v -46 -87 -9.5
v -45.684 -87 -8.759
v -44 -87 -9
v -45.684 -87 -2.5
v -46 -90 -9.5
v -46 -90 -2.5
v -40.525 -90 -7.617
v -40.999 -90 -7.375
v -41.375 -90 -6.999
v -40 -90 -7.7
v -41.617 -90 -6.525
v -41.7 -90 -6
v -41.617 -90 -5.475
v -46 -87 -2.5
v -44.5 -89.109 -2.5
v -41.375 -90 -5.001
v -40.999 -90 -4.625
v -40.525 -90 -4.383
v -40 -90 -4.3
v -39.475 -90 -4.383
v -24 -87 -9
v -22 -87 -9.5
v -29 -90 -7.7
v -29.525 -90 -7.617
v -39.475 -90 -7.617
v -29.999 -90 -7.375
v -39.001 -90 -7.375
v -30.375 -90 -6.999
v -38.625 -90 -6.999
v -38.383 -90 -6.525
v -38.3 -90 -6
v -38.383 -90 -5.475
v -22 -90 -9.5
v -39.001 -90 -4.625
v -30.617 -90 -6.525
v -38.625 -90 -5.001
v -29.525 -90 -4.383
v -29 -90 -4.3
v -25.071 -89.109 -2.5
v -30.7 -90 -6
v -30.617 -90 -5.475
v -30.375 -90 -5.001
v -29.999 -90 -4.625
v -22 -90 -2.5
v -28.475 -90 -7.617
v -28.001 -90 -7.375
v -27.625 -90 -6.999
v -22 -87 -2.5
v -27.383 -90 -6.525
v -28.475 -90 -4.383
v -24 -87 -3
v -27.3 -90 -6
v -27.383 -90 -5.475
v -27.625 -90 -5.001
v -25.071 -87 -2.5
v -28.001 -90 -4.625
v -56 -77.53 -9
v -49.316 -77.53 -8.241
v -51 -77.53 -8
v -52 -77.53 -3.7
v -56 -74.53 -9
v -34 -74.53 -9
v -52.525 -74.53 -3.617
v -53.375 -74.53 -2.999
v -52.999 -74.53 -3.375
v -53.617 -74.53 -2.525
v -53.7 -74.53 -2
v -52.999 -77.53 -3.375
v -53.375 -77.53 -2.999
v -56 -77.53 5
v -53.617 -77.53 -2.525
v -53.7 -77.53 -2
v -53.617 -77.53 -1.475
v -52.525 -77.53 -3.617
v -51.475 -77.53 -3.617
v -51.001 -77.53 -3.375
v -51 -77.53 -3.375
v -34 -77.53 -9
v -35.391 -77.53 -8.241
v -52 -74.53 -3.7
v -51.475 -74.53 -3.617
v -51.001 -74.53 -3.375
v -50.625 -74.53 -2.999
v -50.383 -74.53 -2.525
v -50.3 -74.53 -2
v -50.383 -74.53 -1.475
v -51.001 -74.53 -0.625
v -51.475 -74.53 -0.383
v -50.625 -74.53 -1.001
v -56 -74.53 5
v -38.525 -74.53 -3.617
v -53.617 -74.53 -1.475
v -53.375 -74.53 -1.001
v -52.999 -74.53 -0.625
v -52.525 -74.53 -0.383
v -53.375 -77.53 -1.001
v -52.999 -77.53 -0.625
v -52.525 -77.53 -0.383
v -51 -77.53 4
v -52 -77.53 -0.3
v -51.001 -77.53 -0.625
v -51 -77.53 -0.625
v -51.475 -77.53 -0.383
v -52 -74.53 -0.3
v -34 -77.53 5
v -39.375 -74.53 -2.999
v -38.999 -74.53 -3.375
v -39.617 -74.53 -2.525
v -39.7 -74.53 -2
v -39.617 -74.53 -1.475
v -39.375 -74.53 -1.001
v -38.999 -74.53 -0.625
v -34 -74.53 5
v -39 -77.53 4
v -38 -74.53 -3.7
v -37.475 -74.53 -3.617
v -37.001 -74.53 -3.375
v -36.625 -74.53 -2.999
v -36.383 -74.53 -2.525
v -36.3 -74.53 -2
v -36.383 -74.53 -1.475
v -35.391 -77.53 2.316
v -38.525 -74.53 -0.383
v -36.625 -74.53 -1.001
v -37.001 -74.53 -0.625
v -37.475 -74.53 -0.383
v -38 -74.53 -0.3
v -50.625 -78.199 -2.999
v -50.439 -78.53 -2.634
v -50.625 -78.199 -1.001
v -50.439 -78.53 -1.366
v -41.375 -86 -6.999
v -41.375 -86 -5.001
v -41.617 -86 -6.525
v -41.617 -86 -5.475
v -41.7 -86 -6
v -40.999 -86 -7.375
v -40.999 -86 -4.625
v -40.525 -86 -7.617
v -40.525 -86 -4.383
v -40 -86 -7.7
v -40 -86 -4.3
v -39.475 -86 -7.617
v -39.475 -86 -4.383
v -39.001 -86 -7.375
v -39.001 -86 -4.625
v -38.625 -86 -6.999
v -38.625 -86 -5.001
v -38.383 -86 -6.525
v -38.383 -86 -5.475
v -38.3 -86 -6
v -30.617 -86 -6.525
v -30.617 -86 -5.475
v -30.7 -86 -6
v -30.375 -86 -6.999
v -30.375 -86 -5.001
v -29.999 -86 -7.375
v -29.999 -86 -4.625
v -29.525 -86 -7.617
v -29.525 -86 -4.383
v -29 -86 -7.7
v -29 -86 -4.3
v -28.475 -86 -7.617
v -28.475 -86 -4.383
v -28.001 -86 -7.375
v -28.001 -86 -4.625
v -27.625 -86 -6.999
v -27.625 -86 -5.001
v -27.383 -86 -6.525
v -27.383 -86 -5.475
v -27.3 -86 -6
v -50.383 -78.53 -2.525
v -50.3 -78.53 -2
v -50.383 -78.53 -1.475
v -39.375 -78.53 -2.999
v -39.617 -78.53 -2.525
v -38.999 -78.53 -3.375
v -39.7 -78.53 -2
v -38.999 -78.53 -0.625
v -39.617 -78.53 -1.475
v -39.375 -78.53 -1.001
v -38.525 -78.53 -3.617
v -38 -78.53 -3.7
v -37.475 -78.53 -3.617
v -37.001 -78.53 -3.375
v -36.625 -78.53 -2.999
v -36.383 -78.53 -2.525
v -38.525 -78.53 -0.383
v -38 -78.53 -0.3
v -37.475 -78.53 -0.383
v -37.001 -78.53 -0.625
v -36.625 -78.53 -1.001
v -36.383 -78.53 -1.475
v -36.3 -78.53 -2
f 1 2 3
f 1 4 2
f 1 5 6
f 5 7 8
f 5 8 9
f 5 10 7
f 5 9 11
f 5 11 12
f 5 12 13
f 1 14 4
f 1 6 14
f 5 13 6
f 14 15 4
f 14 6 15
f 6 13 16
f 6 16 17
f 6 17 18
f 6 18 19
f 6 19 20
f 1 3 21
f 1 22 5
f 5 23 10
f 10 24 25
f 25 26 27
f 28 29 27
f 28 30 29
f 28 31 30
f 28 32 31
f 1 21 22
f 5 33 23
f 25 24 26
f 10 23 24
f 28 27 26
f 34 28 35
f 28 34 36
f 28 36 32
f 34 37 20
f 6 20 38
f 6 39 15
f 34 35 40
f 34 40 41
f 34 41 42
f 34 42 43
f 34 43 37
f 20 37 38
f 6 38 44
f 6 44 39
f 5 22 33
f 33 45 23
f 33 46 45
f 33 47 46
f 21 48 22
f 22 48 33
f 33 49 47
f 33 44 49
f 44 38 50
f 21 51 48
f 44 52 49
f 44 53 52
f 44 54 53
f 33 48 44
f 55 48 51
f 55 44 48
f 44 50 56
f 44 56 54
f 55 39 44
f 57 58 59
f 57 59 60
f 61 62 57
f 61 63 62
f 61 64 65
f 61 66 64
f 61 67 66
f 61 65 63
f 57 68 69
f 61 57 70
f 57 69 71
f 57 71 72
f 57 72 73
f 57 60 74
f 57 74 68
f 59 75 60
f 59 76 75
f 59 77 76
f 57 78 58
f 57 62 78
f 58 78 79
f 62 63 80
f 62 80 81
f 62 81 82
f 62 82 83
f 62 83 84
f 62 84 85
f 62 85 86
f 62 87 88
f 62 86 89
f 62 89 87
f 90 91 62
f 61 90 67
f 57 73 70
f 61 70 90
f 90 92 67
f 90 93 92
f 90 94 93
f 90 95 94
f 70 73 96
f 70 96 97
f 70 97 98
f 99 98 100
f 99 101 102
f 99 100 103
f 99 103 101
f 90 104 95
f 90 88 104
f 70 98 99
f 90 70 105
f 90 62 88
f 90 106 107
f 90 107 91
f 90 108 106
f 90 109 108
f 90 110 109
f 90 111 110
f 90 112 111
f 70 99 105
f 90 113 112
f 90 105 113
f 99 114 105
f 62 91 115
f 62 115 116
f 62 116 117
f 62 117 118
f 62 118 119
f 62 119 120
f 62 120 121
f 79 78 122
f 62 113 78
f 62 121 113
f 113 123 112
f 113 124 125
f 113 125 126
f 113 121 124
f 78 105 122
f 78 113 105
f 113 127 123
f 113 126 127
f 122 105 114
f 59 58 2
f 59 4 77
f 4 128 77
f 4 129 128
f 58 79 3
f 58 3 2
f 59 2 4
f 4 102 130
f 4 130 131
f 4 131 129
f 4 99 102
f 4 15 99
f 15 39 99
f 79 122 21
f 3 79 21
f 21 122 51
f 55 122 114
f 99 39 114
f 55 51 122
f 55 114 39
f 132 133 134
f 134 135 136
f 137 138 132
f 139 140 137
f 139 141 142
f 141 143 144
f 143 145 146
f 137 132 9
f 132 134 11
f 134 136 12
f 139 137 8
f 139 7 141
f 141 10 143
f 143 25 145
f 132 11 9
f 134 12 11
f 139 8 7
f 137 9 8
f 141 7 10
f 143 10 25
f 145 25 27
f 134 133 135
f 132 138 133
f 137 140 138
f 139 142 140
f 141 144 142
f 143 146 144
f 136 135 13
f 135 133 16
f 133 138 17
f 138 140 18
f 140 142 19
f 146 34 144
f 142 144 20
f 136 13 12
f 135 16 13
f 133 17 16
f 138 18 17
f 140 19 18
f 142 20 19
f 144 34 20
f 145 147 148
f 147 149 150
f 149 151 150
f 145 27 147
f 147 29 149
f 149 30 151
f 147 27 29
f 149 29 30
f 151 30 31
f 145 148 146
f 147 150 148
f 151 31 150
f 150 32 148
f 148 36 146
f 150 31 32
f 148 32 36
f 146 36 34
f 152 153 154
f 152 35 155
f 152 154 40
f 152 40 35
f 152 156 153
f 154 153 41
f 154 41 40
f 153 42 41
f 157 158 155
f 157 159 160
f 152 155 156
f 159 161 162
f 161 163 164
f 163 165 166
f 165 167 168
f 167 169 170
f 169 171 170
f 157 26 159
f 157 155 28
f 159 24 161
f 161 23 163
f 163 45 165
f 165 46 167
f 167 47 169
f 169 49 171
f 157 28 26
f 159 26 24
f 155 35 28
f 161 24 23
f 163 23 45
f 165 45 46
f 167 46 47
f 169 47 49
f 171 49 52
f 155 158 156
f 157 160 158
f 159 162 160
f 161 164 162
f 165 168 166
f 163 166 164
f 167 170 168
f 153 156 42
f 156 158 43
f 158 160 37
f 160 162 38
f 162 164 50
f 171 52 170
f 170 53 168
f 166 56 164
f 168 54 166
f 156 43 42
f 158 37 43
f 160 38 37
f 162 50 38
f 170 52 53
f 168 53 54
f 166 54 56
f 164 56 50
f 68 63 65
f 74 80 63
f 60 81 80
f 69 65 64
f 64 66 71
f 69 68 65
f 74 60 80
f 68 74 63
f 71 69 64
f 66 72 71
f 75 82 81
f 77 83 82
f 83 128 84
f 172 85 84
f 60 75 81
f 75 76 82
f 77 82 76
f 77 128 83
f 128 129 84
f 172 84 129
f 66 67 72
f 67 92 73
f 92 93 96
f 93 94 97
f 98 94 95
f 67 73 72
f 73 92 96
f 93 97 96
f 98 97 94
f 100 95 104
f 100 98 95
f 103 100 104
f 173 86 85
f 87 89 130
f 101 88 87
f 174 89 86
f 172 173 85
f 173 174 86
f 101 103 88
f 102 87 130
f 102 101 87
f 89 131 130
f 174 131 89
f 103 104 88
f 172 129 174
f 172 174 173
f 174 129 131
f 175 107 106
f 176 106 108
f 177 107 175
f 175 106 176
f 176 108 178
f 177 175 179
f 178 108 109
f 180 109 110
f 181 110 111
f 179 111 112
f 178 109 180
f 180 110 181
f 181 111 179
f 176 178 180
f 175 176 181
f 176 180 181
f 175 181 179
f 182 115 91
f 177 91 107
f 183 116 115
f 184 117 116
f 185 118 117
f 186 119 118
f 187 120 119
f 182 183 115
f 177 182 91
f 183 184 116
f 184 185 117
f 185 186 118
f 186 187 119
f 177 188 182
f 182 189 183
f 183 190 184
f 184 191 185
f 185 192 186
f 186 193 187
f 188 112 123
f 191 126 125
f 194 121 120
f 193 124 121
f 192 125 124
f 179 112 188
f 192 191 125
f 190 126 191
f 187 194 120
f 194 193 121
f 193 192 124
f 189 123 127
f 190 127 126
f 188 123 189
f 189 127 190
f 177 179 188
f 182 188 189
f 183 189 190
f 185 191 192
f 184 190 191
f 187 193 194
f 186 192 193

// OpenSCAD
// H15R_cradle_arm  (qty 1; frame: H; PETG home print preferred (fit to the bought cradle))
// GENERATED by gen_halo_stl.py from halo_parts.py. Change numbers in halo_params.scad.
// Every dimension below is an expression of the names in halo_params.scad.
include <../halo_params.scad>

rotate([90, 0, 0]) {
    difference() {
        union() {
            translate([-46, -9.5, Y_SIDE_IN - 3]) {
                cube([24, 7, Y_SIDE_IN - (Y_SIDE_IN - 3)], center = false);
            }
            translate([TRAG_X - 35 - 11, EAR_TOP_Z + 13 - 7, HBB * 0.89 + 6]) {
                cube([TRAG_X - 35 + 11 - (TRAG_X - 35 - 11), EAR_TOP_Z + 13 + 7 - (EAR_TOP_Z + 13 - 7), HBB * 0.89 + 6 + 3 - (HBB * 0.89 + 6)], center = false);
            }
            hull() {
                translate([-44, -9, Y_SIDE_IN - 3]) {
                    cube([20, 6, Y_SIDE_IN - (Y_SIDE_IN - 3)], center = false);
                }
                translate([TRAG_X - 35 - 6, EAR_TOP_Z + 13 - 6, HBB * 0.89 + 6]) {
                    cube([TRAG_X - 35 + 6 - (TRAG_X - 35 - 6), EAR_TOP_Z + 13 + 6 - (EAR_TOP_Z + 13 - 6), HBB * 0.89 + 6 + 3 - (HBB * 0.89 + 6)], center = false);
                }
            }
        }
        translate([-40, -6, Y_SIDE_IN - 4]) {
            cylinder(h = 5, r = M3_CLEAR / 2, center = false, $fn = 20);
        }
        translate([-29, -6, Y_SIDE_IN - 4]) {
            cylinder(h = 5, r = M3_CLEAR / 2, center = false, $fn = 20);
        }
        translate([TRAG_X - 35 + -7, EAR_TOP_Z + 13, HBB * 0.89 + 6 - 1]) {
            cylinder(h = 5, r = M3_CLEAR / 2, center = false, $fn = 20);
        }
        translate([TRAG_X - 35 + 7, EAR_TOP_Z + 13, HBB * 0.89 + 6 - 1]) {
            cylinder(h = 5, r = M3_CLEAR / 2, center = false, $fn = 20);
        }
    }
}
